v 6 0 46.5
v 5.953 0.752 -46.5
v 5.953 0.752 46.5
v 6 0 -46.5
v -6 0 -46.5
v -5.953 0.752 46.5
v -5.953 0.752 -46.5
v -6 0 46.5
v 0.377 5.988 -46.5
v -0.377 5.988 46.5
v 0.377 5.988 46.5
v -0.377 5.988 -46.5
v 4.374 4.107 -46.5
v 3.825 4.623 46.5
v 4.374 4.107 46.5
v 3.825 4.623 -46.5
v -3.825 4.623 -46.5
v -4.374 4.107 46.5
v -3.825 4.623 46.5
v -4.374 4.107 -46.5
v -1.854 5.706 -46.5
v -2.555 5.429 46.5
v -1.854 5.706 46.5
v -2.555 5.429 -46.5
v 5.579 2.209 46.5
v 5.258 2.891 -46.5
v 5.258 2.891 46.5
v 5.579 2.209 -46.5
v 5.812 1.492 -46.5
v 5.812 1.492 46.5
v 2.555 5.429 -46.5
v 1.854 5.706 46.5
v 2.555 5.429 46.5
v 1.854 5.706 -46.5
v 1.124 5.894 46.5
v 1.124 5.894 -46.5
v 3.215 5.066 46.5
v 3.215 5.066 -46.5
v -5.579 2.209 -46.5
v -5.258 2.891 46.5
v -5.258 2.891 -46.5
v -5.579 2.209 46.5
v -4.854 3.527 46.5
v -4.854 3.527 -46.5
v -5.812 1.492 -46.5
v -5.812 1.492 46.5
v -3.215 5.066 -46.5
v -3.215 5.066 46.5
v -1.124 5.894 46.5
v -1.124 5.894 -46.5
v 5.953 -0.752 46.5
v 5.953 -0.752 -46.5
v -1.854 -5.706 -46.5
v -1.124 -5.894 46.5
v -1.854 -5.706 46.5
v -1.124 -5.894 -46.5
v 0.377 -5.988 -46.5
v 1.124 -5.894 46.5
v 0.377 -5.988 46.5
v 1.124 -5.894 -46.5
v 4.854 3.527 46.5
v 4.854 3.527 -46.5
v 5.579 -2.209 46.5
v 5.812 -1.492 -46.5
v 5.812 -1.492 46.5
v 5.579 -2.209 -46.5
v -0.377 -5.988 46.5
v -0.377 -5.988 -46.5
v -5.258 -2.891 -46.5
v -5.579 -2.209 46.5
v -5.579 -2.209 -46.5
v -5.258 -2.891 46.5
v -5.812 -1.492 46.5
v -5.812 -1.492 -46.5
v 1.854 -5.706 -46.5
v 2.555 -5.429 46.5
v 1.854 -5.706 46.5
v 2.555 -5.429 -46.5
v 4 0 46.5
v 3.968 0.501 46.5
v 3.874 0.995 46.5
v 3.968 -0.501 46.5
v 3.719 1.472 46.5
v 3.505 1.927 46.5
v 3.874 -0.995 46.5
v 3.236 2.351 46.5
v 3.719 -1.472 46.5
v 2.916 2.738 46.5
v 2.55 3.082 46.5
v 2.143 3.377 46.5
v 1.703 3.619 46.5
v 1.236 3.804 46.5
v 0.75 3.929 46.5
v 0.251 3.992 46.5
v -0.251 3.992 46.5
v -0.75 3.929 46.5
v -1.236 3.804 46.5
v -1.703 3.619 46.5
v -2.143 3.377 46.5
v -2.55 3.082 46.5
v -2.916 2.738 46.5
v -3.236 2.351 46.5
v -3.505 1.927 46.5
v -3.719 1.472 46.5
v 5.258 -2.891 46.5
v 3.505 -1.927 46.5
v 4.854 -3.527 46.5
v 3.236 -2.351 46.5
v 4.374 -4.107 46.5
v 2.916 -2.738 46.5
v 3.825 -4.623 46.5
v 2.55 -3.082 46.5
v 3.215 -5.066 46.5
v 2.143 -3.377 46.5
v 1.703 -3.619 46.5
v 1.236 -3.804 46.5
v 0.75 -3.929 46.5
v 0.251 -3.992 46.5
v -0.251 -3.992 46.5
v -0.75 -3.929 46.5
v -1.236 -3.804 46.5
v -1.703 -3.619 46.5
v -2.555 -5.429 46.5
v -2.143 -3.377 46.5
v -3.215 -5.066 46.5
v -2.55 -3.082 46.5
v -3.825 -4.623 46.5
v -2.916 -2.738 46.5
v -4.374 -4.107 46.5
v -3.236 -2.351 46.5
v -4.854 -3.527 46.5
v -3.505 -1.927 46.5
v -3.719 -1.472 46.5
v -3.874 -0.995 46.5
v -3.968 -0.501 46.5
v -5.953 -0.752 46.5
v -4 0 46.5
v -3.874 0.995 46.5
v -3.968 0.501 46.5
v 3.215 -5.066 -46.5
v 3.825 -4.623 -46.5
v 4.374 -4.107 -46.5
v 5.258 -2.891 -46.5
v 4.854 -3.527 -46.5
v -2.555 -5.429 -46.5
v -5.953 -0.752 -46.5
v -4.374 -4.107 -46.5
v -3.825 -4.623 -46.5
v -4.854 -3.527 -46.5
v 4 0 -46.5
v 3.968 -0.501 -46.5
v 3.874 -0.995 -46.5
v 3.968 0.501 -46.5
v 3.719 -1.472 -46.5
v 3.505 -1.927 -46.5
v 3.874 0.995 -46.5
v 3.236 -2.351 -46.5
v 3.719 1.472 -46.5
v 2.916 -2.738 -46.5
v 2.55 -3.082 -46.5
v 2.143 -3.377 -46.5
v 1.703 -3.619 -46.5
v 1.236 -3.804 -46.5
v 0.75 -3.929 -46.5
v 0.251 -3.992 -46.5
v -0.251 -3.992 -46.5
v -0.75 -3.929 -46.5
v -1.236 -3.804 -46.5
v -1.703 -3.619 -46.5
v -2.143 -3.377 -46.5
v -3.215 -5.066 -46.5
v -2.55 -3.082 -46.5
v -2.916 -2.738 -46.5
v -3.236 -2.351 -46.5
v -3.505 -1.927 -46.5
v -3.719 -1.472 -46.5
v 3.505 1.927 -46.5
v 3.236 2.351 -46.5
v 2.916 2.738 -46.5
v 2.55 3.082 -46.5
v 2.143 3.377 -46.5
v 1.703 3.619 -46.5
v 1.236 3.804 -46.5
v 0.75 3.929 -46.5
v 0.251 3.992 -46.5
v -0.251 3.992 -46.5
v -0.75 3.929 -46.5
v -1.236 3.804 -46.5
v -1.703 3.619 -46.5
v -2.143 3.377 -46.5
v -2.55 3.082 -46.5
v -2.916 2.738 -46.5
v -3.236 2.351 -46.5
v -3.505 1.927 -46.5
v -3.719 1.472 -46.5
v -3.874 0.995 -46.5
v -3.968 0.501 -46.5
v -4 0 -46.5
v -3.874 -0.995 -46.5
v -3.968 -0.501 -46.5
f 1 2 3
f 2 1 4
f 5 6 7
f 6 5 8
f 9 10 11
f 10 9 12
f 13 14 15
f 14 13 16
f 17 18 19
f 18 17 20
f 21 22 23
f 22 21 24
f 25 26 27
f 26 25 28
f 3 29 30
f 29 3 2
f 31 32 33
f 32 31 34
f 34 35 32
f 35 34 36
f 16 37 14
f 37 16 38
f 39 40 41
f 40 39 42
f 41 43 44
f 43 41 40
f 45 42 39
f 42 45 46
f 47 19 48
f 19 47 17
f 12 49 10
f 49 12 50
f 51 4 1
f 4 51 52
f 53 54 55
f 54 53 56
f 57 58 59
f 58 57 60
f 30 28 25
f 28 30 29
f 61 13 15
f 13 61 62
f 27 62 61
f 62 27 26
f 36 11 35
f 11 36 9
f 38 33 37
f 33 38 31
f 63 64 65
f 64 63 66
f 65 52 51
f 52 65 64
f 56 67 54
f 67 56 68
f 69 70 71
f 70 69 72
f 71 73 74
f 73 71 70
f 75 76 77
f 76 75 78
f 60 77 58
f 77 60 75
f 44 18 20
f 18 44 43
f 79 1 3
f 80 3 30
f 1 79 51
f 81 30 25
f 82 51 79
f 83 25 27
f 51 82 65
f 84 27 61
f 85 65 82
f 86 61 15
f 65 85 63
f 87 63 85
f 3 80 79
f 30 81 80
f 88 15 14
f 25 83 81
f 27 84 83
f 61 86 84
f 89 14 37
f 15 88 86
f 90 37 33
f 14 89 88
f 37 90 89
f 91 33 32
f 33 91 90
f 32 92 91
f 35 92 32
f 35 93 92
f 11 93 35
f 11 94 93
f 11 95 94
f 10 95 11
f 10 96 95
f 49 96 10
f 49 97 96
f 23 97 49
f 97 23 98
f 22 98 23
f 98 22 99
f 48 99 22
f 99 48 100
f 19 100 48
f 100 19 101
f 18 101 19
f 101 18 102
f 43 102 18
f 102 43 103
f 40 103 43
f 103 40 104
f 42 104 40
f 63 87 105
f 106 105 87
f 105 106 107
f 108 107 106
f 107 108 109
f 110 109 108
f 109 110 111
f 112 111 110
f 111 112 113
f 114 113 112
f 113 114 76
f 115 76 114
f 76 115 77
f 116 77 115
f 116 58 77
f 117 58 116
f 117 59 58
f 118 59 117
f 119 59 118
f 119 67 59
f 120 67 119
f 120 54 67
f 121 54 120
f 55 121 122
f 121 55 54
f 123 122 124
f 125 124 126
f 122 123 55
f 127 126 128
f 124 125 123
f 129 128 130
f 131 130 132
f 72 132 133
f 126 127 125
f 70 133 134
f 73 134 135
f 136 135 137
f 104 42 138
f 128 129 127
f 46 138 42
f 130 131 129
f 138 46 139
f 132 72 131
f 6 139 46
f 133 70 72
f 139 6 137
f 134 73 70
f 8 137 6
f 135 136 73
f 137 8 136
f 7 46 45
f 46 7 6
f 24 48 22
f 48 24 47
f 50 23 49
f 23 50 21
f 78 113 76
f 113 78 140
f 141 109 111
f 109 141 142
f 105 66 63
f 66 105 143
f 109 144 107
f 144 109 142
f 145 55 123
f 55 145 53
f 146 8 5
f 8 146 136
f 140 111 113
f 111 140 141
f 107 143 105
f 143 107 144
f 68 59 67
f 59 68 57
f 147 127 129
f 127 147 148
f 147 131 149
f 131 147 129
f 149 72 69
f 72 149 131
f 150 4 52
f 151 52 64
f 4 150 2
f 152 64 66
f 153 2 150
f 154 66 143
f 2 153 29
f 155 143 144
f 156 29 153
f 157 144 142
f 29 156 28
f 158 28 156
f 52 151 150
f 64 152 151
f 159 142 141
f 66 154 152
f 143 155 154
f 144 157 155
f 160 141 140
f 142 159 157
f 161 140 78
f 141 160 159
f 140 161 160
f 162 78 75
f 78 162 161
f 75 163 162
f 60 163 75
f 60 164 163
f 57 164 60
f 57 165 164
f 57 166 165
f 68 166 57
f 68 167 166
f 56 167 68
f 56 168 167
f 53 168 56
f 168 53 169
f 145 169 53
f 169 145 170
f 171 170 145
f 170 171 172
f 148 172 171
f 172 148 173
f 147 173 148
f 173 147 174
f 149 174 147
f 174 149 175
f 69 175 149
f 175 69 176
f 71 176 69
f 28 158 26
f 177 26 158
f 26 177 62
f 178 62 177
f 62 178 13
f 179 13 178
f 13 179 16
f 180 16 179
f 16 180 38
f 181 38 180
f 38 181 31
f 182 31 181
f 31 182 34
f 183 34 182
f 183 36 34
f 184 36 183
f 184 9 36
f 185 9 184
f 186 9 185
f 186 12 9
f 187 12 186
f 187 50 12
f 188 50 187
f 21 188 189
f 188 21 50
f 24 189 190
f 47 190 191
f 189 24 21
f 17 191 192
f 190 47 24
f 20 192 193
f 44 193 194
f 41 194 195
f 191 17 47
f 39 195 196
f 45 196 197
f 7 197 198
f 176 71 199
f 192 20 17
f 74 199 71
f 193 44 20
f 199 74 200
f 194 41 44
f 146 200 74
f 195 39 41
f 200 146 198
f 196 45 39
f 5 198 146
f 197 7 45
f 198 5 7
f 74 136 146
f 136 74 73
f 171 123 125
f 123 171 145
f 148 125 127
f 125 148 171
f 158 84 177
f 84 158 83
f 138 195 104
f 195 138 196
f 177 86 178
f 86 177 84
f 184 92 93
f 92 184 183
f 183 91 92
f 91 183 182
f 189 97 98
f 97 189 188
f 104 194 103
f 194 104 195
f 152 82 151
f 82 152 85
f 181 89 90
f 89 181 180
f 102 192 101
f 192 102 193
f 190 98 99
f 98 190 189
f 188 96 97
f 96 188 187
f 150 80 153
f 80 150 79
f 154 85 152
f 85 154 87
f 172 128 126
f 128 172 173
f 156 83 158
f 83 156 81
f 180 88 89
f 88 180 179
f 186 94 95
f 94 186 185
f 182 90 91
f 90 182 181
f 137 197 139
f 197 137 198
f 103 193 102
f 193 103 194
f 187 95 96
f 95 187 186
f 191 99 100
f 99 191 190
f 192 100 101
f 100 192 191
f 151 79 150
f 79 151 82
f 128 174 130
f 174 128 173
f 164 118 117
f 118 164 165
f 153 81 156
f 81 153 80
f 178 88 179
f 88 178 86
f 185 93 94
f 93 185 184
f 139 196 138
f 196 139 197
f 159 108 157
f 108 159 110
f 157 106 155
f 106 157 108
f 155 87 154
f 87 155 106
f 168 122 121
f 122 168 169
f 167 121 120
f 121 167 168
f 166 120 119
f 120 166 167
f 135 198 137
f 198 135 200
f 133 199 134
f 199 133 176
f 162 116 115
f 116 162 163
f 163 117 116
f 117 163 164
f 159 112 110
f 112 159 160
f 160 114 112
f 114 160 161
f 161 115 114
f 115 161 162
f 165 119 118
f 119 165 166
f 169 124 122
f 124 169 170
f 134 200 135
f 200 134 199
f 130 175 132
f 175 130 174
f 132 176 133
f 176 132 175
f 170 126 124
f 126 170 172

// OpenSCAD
$fn = 50;


difference() {
	union() {
		translate(v = [0, 0, -46.5000000000]) {
			cylinder(h = 93, r = 6.0000000000);
		}
	}
	union() {
		translate(v = [0, 0, -100.0000000000]) {
			cylinder(h = 200, r = 4.0000000000);
		}
	}
}
